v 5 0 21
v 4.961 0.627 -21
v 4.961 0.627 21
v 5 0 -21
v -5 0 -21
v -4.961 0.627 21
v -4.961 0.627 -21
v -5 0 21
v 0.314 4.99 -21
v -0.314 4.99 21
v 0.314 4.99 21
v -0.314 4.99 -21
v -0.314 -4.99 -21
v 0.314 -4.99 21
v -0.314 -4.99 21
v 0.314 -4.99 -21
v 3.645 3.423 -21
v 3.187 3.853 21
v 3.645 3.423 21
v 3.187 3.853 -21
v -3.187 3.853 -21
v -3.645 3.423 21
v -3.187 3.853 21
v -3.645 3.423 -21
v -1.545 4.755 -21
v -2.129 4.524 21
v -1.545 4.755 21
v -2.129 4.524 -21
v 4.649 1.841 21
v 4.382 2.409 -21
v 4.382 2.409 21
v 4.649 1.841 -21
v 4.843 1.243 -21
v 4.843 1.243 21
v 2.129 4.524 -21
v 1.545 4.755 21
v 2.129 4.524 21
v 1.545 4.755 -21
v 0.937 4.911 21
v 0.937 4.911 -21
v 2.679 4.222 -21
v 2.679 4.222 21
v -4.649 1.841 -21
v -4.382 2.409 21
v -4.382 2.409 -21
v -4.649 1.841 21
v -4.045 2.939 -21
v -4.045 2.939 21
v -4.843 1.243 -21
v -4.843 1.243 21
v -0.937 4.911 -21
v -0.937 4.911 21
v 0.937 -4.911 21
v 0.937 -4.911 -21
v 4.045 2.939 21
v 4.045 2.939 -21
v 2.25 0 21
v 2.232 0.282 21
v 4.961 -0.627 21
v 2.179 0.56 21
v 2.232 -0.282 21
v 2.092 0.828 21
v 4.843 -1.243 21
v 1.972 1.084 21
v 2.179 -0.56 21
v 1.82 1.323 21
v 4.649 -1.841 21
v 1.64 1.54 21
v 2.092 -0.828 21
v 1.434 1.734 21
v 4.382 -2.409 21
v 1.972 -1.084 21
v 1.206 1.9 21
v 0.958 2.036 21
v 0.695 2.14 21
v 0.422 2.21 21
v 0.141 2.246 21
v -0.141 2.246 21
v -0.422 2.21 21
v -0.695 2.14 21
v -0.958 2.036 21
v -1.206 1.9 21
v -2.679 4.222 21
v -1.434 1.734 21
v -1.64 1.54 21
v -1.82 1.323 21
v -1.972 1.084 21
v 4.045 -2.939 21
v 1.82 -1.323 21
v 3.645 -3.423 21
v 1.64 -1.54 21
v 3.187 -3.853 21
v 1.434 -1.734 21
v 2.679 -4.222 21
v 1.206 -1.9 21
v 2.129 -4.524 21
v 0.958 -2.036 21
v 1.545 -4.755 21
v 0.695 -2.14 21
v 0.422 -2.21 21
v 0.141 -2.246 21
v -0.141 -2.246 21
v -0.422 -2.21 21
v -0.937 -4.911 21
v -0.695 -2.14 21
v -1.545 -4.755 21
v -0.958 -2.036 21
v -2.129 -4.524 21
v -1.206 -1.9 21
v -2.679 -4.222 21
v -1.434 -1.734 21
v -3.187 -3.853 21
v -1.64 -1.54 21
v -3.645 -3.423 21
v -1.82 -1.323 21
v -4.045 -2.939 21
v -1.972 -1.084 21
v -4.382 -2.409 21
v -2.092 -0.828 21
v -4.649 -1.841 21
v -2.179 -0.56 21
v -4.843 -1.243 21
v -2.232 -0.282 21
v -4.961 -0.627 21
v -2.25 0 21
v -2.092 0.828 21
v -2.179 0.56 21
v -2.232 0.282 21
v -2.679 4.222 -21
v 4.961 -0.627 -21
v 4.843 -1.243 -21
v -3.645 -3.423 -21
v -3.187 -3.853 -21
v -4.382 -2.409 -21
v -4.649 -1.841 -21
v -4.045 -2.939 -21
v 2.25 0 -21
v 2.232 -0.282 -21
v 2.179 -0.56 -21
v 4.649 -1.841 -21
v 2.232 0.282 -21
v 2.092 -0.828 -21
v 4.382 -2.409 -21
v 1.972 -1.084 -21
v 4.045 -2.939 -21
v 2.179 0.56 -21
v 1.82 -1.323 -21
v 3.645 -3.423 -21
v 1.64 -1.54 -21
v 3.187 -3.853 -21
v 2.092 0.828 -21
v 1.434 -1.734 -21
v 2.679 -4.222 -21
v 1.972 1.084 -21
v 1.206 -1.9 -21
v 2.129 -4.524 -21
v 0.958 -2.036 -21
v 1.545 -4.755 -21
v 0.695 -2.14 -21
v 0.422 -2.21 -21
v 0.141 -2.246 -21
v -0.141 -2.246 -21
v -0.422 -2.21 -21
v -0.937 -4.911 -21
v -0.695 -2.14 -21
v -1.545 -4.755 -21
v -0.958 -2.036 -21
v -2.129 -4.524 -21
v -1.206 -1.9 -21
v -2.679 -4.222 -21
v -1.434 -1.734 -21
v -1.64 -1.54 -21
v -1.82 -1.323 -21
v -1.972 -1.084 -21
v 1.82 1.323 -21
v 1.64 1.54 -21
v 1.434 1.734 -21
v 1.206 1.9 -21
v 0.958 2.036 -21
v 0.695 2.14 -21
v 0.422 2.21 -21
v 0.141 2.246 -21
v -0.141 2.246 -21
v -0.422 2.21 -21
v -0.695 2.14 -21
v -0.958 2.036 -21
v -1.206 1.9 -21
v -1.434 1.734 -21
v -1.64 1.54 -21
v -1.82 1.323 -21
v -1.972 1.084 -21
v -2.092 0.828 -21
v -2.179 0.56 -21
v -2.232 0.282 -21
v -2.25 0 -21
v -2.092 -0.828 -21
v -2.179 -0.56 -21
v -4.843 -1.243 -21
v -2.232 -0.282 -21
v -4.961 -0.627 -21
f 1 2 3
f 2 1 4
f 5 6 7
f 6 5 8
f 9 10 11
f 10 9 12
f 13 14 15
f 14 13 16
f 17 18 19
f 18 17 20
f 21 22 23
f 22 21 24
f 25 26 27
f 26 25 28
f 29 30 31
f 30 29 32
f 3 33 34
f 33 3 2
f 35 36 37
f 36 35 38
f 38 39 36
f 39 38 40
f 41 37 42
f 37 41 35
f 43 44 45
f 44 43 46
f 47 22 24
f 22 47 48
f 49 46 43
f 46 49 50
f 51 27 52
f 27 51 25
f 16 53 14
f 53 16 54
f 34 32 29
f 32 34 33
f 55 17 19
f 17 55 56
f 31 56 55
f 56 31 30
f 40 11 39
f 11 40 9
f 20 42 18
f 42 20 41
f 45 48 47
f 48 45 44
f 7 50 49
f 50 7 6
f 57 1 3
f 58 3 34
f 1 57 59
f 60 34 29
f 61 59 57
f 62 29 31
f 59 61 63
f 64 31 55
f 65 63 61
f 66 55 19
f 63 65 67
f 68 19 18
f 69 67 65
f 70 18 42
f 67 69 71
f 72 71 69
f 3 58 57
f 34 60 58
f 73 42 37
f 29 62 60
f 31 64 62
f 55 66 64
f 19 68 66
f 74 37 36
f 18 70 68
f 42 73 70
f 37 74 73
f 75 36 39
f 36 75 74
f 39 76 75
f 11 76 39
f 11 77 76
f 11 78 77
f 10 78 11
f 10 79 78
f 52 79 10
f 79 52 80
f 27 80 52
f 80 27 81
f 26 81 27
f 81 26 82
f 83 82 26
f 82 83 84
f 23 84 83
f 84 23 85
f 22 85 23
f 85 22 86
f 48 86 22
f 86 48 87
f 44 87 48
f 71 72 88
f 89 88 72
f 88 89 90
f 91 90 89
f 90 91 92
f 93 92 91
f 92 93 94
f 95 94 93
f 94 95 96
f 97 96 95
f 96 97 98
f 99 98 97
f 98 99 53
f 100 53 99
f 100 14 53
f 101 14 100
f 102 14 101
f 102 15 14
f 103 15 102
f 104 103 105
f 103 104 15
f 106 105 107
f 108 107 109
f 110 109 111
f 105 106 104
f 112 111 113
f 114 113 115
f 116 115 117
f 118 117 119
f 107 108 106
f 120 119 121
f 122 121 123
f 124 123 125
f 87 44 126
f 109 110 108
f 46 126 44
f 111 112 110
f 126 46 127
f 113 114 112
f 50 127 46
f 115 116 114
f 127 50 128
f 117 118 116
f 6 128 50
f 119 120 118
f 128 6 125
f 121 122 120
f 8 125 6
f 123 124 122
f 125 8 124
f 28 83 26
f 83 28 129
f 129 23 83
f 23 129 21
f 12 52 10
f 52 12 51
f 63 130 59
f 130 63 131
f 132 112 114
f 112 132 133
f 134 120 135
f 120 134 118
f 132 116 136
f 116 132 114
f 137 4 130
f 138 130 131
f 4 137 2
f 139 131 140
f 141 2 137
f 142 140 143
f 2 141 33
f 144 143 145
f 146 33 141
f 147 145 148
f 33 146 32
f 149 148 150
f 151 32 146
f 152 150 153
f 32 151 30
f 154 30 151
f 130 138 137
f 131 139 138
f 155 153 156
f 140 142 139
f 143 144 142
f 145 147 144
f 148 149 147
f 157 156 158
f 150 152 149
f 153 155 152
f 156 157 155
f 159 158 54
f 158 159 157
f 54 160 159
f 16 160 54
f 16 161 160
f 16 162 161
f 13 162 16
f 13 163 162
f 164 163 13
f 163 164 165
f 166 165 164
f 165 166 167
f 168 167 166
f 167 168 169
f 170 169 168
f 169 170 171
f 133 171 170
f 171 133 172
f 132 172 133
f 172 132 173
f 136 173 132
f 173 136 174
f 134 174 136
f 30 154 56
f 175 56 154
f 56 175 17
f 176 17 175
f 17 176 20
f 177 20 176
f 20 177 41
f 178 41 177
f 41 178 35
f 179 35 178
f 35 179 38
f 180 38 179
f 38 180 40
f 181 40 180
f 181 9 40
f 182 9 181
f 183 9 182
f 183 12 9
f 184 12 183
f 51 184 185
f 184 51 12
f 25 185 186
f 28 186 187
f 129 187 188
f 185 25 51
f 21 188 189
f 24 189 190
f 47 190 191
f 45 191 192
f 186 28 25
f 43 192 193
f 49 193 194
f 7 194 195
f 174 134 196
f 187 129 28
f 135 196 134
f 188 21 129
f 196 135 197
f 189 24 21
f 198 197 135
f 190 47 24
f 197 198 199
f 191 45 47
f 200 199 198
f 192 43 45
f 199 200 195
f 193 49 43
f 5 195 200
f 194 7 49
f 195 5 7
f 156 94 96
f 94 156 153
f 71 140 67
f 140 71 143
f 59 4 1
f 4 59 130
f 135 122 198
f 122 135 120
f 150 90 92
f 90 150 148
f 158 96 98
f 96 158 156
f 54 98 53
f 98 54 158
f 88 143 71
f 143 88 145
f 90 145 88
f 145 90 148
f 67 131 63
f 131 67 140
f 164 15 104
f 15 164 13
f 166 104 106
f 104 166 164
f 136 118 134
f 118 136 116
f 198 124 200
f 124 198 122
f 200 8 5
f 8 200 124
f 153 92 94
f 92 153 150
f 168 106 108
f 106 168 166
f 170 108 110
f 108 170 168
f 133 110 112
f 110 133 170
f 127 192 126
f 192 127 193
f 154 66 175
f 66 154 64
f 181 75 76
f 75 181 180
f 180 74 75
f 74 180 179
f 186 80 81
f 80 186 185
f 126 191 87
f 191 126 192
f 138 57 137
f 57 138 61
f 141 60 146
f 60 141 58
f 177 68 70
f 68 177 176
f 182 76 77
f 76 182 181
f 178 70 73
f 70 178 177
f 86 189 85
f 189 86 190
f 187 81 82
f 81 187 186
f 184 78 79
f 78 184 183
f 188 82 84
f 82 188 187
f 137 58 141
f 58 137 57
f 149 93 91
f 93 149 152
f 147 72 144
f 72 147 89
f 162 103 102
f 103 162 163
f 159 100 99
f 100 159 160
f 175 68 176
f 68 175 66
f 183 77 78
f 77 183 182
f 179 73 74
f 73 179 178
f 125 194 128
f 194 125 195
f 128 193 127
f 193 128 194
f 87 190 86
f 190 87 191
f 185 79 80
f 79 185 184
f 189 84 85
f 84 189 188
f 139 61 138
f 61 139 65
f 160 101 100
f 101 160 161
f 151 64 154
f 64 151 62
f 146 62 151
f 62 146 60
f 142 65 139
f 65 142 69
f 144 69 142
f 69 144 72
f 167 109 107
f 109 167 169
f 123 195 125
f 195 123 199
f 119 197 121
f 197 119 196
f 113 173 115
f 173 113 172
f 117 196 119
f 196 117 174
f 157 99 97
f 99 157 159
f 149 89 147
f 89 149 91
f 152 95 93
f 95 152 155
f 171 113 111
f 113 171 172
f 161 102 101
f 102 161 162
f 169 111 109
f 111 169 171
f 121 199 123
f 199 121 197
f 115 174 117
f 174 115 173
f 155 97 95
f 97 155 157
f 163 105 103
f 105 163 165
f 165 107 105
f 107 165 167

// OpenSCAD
$fn = 50;


difference() {
	union() {
		translate(v = [0, 0, -21.0000000000]) {
			cylinder(h = 42, r = 5.0000000000);
		}
	}
	union() {
		translate(v = [0, 0, -100.0000000000]) {
			cylinder(h = 200, r = 2.2500000000);
		}
	}
}
